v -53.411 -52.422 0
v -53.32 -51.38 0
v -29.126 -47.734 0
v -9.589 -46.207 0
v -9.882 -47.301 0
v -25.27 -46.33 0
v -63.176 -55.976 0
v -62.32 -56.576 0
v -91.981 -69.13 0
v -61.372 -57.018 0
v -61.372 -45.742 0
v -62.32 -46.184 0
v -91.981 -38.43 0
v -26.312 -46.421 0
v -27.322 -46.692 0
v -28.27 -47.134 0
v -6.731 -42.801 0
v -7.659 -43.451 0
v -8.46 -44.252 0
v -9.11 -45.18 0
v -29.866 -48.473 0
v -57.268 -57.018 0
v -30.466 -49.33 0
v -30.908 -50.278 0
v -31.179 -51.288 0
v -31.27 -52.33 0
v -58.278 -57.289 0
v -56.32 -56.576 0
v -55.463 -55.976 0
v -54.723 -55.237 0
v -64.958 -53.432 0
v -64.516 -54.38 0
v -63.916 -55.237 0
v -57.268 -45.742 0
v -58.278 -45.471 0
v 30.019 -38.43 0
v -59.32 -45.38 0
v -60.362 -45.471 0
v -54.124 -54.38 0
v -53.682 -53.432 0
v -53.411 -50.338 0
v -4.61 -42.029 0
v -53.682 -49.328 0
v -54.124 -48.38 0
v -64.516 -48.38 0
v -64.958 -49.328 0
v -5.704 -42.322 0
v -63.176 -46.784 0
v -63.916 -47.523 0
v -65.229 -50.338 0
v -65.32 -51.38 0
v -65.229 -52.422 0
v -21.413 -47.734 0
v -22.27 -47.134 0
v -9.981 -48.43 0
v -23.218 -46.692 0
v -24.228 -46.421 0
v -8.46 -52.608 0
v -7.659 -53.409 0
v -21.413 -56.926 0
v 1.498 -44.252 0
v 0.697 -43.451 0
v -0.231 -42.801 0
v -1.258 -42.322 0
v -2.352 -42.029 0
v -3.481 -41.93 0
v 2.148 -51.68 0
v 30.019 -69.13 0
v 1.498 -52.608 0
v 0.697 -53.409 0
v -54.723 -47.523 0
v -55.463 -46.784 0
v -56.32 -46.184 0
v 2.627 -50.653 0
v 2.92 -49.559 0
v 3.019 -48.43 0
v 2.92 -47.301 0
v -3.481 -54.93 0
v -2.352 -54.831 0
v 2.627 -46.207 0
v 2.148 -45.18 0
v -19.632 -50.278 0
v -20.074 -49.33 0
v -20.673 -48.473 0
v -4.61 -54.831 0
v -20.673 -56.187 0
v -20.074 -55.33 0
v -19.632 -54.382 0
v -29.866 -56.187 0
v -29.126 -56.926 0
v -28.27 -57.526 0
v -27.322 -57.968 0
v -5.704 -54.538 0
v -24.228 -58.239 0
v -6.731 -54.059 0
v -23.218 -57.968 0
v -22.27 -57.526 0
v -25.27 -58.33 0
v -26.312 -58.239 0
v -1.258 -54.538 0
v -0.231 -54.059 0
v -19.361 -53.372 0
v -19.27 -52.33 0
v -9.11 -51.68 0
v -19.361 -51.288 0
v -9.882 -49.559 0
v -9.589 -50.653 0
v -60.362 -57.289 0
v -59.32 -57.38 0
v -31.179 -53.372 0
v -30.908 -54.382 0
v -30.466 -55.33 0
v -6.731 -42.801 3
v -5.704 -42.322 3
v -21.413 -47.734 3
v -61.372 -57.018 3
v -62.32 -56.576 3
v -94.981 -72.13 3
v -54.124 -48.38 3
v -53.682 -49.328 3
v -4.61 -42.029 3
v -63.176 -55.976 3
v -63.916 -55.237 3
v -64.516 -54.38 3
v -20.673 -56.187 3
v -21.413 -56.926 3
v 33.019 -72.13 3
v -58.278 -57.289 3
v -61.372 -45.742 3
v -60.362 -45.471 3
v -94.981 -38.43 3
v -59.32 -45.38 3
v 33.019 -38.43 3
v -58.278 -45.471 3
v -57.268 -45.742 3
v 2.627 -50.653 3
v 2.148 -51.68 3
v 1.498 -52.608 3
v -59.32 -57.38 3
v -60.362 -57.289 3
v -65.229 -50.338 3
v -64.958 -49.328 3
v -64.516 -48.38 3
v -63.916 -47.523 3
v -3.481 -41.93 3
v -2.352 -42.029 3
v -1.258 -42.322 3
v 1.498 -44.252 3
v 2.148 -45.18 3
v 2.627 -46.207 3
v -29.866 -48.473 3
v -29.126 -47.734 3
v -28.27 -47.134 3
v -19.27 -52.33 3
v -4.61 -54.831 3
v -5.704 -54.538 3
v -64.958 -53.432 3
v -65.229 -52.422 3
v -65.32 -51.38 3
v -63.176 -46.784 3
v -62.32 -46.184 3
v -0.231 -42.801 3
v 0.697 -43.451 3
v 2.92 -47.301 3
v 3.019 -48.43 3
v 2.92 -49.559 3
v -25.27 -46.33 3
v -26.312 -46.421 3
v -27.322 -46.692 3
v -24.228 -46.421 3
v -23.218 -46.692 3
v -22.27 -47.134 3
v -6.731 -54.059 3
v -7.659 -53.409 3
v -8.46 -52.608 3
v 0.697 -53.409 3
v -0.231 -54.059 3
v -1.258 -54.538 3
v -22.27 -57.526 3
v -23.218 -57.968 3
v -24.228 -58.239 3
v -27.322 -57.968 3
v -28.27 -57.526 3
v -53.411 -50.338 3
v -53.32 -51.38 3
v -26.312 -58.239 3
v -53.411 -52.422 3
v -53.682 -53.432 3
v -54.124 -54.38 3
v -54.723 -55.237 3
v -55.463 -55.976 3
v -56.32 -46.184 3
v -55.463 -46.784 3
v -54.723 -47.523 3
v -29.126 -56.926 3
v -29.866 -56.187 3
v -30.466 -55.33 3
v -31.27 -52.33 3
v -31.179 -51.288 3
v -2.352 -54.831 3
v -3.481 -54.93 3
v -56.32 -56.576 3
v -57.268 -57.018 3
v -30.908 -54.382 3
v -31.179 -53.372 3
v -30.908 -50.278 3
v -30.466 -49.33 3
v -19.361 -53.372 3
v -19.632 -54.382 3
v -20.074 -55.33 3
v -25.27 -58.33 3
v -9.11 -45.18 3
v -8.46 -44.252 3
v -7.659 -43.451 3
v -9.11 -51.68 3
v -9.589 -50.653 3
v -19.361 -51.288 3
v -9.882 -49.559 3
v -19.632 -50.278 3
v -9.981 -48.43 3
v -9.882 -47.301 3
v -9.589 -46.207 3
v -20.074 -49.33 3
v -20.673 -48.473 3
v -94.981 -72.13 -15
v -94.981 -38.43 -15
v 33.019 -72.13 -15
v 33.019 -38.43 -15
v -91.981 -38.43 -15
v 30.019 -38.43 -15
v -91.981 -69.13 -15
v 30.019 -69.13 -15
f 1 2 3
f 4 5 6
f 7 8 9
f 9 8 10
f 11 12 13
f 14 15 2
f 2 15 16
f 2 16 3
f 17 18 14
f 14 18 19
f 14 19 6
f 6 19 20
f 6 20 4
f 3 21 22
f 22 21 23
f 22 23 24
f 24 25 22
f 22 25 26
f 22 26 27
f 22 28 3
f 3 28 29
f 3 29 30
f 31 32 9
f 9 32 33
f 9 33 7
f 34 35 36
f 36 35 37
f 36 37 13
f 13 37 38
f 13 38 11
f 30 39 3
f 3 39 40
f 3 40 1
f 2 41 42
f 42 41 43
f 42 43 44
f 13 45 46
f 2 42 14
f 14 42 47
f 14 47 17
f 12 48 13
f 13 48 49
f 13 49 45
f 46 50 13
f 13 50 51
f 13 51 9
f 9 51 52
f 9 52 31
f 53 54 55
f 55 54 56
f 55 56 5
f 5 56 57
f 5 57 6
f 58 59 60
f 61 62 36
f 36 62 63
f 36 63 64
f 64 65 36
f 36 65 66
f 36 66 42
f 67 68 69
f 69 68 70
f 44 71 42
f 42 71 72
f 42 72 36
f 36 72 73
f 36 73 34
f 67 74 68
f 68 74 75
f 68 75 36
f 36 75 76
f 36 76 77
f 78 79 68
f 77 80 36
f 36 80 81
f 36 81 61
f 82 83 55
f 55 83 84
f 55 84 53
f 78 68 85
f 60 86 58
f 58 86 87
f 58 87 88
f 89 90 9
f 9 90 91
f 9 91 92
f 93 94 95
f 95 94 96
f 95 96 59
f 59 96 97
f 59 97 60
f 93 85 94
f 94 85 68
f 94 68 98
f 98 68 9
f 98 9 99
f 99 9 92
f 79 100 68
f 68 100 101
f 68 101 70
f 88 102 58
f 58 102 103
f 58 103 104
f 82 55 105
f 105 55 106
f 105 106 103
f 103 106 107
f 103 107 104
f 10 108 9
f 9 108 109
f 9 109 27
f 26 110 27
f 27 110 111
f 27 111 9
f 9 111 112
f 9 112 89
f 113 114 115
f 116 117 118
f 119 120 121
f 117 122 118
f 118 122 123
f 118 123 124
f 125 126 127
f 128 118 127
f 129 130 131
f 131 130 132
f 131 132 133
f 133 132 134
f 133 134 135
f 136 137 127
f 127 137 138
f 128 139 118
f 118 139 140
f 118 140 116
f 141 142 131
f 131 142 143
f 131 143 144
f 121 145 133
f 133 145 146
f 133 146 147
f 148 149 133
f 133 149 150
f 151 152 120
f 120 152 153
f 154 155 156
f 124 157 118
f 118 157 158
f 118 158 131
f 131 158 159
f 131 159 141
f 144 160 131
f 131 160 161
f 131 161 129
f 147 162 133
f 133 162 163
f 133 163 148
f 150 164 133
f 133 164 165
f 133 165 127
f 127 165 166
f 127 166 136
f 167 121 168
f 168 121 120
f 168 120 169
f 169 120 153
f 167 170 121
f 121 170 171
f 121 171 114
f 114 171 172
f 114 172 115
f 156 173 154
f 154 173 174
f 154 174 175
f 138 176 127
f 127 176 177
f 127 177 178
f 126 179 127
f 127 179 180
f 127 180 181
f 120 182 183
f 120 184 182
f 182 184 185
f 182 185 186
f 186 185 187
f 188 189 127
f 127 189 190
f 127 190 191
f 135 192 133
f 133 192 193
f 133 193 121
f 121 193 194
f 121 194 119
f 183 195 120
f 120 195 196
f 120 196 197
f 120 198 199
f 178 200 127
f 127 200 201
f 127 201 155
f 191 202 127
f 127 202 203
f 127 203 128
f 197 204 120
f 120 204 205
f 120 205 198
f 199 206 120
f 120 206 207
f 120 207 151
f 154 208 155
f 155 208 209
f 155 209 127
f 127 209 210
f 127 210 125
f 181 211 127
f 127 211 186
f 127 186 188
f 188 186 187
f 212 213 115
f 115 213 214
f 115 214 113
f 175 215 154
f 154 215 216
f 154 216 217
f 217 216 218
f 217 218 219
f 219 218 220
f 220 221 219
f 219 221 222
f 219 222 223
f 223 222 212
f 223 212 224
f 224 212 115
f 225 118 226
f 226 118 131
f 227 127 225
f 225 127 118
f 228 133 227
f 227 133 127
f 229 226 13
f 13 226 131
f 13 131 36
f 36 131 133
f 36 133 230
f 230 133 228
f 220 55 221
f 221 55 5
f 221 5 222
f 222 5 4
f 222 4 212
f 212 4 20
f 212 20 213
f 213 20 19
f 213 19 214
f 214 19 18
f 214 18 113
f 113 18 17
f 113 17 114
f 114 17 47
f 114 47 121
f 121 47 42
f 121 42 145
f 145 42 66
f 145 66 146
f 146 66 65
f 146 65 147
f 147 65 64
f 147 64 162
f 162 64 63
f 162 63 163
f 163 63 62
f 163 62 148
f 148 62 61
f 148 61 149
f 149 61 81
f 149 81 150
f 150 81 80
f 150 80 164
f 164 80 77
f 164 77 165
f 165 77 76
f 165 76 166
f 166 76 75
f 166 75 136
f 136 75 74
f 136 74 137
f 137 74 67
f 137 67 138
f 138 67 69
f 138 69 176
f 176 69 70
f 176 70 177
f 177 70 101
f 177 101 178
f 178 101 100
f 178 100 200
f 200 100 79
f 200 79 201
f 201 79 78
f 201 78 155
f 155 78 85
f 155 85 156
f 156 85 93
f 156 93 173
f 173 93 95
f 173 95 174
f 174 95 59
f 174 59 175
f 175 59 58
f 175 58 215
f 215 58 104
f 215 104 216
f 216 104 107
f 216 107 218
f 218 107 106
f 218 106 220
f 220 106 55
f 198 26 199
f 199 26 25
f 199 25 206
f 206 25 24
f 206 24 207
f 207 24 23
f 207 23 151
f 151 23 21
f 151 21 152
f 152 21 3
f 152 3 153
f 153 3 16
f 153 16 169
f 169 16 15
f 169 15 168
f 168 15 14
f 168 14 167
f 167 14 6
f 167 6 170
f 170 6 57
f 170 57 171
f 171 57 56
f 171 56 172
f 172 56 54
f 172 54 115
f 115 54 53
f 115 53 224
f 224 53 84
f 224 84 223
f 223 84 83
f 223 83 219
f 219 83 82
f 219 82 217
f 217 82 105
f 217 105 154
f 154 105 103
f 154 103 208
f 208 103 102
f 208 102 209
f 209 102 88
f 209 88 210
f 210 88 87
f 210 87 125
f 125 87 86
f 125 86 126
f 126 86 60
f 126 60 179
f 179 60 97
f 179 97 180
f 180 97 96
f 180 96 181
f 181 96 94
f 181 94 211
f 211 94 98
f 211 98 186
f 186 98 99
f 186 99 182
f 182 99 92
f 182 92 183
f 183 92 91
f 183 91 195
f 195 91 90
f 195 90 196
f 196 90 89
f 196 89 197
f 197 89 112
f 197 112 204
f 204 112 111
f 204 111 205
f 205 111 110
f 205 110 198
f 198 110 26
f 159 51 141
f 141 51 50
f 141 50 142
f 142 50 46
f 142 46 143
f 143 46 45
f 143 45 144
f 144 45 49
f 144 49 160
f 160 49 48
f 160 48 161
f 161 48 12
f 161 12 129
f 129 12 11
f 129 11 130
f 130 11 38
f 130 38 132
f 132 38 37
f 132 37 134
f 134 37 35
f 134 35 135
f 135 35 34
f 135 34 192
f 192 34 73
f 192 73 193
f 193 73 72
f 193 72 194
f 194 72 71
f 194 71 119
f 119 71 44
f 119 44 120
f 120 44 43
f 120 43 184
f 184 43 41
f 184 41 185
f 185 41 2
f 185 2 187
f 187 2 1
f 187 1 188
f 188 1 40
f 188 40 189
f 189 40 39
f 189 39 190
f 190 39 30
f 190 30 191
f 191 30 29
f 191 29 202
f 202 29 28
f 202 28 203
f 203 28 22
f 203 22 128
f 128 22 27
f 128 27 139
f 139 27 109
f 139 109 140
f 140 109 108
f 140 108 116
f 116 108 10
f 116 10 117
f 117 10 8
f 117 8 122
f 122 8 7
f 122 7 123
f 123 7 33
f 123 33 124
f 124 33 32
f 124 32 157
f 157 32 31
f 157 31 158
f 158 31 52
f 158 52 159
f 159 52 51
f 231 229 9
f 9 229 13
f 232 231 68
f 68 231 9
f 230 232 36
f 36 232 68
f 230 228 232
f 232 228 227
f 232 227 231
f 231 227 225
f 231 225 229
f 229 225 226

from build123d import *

# Parameters (mm, degrees)
SKETCH_1_W      = 128
SKETCH_1_H      = 33.7
SKETCH_1_R      = 6.5
SKETCH_1_R_2    = 6
EXTRUDE_1_DEPTH = 3
EXTRUDE_2_DEPTH = 15


with BuildPart() as part:
    # 草圖1 → 填料-伸長1 (new body)
    with BuildSketch(Plane.XY):
        with Locations((-30.980810071, -55.280072207)):
            Rectangle(SKETCH_1_W, SKETCH_1_H)
        with Locations((-3.480809972, -48.430072207)):
            Circle(SKETCH_1_R, mode=Mode.SUBTRACT)
        with Locations((-25.269668394, -52.330072207)):
            Circle(SKETCH_1_R_2, mode=Mode.SUBTRACT)
        with Locations((-59.319668394, -51.380072207)):
            Circle(SKETCH_1_R_2, mode=Mode.SUBTRACT)
    extrude(amount=EXTRUDE_1_DEPTH)

    # 草圖2 → 填料-伸長2 (add)
    with BuildSketch(Plane(origin=(0, 0, 0), x_dir=(-1, 0, 0), z_dir=(0, 0, -1))):
        Polygon((91.980810071, -38.430072207), (91.980810071, -69.130072207), (-30.019189929, -69.130072207), (-30.019189929, -38.430072207), (-33.019189929, -38.430072207), (-33.019189929, -72.130072207), (94.980810071, -72.130072207), (94.980810071, -38.430072207), align=None)
    extrude(amount=EXTRUDE_2_DEPTH)


solid = part.part
